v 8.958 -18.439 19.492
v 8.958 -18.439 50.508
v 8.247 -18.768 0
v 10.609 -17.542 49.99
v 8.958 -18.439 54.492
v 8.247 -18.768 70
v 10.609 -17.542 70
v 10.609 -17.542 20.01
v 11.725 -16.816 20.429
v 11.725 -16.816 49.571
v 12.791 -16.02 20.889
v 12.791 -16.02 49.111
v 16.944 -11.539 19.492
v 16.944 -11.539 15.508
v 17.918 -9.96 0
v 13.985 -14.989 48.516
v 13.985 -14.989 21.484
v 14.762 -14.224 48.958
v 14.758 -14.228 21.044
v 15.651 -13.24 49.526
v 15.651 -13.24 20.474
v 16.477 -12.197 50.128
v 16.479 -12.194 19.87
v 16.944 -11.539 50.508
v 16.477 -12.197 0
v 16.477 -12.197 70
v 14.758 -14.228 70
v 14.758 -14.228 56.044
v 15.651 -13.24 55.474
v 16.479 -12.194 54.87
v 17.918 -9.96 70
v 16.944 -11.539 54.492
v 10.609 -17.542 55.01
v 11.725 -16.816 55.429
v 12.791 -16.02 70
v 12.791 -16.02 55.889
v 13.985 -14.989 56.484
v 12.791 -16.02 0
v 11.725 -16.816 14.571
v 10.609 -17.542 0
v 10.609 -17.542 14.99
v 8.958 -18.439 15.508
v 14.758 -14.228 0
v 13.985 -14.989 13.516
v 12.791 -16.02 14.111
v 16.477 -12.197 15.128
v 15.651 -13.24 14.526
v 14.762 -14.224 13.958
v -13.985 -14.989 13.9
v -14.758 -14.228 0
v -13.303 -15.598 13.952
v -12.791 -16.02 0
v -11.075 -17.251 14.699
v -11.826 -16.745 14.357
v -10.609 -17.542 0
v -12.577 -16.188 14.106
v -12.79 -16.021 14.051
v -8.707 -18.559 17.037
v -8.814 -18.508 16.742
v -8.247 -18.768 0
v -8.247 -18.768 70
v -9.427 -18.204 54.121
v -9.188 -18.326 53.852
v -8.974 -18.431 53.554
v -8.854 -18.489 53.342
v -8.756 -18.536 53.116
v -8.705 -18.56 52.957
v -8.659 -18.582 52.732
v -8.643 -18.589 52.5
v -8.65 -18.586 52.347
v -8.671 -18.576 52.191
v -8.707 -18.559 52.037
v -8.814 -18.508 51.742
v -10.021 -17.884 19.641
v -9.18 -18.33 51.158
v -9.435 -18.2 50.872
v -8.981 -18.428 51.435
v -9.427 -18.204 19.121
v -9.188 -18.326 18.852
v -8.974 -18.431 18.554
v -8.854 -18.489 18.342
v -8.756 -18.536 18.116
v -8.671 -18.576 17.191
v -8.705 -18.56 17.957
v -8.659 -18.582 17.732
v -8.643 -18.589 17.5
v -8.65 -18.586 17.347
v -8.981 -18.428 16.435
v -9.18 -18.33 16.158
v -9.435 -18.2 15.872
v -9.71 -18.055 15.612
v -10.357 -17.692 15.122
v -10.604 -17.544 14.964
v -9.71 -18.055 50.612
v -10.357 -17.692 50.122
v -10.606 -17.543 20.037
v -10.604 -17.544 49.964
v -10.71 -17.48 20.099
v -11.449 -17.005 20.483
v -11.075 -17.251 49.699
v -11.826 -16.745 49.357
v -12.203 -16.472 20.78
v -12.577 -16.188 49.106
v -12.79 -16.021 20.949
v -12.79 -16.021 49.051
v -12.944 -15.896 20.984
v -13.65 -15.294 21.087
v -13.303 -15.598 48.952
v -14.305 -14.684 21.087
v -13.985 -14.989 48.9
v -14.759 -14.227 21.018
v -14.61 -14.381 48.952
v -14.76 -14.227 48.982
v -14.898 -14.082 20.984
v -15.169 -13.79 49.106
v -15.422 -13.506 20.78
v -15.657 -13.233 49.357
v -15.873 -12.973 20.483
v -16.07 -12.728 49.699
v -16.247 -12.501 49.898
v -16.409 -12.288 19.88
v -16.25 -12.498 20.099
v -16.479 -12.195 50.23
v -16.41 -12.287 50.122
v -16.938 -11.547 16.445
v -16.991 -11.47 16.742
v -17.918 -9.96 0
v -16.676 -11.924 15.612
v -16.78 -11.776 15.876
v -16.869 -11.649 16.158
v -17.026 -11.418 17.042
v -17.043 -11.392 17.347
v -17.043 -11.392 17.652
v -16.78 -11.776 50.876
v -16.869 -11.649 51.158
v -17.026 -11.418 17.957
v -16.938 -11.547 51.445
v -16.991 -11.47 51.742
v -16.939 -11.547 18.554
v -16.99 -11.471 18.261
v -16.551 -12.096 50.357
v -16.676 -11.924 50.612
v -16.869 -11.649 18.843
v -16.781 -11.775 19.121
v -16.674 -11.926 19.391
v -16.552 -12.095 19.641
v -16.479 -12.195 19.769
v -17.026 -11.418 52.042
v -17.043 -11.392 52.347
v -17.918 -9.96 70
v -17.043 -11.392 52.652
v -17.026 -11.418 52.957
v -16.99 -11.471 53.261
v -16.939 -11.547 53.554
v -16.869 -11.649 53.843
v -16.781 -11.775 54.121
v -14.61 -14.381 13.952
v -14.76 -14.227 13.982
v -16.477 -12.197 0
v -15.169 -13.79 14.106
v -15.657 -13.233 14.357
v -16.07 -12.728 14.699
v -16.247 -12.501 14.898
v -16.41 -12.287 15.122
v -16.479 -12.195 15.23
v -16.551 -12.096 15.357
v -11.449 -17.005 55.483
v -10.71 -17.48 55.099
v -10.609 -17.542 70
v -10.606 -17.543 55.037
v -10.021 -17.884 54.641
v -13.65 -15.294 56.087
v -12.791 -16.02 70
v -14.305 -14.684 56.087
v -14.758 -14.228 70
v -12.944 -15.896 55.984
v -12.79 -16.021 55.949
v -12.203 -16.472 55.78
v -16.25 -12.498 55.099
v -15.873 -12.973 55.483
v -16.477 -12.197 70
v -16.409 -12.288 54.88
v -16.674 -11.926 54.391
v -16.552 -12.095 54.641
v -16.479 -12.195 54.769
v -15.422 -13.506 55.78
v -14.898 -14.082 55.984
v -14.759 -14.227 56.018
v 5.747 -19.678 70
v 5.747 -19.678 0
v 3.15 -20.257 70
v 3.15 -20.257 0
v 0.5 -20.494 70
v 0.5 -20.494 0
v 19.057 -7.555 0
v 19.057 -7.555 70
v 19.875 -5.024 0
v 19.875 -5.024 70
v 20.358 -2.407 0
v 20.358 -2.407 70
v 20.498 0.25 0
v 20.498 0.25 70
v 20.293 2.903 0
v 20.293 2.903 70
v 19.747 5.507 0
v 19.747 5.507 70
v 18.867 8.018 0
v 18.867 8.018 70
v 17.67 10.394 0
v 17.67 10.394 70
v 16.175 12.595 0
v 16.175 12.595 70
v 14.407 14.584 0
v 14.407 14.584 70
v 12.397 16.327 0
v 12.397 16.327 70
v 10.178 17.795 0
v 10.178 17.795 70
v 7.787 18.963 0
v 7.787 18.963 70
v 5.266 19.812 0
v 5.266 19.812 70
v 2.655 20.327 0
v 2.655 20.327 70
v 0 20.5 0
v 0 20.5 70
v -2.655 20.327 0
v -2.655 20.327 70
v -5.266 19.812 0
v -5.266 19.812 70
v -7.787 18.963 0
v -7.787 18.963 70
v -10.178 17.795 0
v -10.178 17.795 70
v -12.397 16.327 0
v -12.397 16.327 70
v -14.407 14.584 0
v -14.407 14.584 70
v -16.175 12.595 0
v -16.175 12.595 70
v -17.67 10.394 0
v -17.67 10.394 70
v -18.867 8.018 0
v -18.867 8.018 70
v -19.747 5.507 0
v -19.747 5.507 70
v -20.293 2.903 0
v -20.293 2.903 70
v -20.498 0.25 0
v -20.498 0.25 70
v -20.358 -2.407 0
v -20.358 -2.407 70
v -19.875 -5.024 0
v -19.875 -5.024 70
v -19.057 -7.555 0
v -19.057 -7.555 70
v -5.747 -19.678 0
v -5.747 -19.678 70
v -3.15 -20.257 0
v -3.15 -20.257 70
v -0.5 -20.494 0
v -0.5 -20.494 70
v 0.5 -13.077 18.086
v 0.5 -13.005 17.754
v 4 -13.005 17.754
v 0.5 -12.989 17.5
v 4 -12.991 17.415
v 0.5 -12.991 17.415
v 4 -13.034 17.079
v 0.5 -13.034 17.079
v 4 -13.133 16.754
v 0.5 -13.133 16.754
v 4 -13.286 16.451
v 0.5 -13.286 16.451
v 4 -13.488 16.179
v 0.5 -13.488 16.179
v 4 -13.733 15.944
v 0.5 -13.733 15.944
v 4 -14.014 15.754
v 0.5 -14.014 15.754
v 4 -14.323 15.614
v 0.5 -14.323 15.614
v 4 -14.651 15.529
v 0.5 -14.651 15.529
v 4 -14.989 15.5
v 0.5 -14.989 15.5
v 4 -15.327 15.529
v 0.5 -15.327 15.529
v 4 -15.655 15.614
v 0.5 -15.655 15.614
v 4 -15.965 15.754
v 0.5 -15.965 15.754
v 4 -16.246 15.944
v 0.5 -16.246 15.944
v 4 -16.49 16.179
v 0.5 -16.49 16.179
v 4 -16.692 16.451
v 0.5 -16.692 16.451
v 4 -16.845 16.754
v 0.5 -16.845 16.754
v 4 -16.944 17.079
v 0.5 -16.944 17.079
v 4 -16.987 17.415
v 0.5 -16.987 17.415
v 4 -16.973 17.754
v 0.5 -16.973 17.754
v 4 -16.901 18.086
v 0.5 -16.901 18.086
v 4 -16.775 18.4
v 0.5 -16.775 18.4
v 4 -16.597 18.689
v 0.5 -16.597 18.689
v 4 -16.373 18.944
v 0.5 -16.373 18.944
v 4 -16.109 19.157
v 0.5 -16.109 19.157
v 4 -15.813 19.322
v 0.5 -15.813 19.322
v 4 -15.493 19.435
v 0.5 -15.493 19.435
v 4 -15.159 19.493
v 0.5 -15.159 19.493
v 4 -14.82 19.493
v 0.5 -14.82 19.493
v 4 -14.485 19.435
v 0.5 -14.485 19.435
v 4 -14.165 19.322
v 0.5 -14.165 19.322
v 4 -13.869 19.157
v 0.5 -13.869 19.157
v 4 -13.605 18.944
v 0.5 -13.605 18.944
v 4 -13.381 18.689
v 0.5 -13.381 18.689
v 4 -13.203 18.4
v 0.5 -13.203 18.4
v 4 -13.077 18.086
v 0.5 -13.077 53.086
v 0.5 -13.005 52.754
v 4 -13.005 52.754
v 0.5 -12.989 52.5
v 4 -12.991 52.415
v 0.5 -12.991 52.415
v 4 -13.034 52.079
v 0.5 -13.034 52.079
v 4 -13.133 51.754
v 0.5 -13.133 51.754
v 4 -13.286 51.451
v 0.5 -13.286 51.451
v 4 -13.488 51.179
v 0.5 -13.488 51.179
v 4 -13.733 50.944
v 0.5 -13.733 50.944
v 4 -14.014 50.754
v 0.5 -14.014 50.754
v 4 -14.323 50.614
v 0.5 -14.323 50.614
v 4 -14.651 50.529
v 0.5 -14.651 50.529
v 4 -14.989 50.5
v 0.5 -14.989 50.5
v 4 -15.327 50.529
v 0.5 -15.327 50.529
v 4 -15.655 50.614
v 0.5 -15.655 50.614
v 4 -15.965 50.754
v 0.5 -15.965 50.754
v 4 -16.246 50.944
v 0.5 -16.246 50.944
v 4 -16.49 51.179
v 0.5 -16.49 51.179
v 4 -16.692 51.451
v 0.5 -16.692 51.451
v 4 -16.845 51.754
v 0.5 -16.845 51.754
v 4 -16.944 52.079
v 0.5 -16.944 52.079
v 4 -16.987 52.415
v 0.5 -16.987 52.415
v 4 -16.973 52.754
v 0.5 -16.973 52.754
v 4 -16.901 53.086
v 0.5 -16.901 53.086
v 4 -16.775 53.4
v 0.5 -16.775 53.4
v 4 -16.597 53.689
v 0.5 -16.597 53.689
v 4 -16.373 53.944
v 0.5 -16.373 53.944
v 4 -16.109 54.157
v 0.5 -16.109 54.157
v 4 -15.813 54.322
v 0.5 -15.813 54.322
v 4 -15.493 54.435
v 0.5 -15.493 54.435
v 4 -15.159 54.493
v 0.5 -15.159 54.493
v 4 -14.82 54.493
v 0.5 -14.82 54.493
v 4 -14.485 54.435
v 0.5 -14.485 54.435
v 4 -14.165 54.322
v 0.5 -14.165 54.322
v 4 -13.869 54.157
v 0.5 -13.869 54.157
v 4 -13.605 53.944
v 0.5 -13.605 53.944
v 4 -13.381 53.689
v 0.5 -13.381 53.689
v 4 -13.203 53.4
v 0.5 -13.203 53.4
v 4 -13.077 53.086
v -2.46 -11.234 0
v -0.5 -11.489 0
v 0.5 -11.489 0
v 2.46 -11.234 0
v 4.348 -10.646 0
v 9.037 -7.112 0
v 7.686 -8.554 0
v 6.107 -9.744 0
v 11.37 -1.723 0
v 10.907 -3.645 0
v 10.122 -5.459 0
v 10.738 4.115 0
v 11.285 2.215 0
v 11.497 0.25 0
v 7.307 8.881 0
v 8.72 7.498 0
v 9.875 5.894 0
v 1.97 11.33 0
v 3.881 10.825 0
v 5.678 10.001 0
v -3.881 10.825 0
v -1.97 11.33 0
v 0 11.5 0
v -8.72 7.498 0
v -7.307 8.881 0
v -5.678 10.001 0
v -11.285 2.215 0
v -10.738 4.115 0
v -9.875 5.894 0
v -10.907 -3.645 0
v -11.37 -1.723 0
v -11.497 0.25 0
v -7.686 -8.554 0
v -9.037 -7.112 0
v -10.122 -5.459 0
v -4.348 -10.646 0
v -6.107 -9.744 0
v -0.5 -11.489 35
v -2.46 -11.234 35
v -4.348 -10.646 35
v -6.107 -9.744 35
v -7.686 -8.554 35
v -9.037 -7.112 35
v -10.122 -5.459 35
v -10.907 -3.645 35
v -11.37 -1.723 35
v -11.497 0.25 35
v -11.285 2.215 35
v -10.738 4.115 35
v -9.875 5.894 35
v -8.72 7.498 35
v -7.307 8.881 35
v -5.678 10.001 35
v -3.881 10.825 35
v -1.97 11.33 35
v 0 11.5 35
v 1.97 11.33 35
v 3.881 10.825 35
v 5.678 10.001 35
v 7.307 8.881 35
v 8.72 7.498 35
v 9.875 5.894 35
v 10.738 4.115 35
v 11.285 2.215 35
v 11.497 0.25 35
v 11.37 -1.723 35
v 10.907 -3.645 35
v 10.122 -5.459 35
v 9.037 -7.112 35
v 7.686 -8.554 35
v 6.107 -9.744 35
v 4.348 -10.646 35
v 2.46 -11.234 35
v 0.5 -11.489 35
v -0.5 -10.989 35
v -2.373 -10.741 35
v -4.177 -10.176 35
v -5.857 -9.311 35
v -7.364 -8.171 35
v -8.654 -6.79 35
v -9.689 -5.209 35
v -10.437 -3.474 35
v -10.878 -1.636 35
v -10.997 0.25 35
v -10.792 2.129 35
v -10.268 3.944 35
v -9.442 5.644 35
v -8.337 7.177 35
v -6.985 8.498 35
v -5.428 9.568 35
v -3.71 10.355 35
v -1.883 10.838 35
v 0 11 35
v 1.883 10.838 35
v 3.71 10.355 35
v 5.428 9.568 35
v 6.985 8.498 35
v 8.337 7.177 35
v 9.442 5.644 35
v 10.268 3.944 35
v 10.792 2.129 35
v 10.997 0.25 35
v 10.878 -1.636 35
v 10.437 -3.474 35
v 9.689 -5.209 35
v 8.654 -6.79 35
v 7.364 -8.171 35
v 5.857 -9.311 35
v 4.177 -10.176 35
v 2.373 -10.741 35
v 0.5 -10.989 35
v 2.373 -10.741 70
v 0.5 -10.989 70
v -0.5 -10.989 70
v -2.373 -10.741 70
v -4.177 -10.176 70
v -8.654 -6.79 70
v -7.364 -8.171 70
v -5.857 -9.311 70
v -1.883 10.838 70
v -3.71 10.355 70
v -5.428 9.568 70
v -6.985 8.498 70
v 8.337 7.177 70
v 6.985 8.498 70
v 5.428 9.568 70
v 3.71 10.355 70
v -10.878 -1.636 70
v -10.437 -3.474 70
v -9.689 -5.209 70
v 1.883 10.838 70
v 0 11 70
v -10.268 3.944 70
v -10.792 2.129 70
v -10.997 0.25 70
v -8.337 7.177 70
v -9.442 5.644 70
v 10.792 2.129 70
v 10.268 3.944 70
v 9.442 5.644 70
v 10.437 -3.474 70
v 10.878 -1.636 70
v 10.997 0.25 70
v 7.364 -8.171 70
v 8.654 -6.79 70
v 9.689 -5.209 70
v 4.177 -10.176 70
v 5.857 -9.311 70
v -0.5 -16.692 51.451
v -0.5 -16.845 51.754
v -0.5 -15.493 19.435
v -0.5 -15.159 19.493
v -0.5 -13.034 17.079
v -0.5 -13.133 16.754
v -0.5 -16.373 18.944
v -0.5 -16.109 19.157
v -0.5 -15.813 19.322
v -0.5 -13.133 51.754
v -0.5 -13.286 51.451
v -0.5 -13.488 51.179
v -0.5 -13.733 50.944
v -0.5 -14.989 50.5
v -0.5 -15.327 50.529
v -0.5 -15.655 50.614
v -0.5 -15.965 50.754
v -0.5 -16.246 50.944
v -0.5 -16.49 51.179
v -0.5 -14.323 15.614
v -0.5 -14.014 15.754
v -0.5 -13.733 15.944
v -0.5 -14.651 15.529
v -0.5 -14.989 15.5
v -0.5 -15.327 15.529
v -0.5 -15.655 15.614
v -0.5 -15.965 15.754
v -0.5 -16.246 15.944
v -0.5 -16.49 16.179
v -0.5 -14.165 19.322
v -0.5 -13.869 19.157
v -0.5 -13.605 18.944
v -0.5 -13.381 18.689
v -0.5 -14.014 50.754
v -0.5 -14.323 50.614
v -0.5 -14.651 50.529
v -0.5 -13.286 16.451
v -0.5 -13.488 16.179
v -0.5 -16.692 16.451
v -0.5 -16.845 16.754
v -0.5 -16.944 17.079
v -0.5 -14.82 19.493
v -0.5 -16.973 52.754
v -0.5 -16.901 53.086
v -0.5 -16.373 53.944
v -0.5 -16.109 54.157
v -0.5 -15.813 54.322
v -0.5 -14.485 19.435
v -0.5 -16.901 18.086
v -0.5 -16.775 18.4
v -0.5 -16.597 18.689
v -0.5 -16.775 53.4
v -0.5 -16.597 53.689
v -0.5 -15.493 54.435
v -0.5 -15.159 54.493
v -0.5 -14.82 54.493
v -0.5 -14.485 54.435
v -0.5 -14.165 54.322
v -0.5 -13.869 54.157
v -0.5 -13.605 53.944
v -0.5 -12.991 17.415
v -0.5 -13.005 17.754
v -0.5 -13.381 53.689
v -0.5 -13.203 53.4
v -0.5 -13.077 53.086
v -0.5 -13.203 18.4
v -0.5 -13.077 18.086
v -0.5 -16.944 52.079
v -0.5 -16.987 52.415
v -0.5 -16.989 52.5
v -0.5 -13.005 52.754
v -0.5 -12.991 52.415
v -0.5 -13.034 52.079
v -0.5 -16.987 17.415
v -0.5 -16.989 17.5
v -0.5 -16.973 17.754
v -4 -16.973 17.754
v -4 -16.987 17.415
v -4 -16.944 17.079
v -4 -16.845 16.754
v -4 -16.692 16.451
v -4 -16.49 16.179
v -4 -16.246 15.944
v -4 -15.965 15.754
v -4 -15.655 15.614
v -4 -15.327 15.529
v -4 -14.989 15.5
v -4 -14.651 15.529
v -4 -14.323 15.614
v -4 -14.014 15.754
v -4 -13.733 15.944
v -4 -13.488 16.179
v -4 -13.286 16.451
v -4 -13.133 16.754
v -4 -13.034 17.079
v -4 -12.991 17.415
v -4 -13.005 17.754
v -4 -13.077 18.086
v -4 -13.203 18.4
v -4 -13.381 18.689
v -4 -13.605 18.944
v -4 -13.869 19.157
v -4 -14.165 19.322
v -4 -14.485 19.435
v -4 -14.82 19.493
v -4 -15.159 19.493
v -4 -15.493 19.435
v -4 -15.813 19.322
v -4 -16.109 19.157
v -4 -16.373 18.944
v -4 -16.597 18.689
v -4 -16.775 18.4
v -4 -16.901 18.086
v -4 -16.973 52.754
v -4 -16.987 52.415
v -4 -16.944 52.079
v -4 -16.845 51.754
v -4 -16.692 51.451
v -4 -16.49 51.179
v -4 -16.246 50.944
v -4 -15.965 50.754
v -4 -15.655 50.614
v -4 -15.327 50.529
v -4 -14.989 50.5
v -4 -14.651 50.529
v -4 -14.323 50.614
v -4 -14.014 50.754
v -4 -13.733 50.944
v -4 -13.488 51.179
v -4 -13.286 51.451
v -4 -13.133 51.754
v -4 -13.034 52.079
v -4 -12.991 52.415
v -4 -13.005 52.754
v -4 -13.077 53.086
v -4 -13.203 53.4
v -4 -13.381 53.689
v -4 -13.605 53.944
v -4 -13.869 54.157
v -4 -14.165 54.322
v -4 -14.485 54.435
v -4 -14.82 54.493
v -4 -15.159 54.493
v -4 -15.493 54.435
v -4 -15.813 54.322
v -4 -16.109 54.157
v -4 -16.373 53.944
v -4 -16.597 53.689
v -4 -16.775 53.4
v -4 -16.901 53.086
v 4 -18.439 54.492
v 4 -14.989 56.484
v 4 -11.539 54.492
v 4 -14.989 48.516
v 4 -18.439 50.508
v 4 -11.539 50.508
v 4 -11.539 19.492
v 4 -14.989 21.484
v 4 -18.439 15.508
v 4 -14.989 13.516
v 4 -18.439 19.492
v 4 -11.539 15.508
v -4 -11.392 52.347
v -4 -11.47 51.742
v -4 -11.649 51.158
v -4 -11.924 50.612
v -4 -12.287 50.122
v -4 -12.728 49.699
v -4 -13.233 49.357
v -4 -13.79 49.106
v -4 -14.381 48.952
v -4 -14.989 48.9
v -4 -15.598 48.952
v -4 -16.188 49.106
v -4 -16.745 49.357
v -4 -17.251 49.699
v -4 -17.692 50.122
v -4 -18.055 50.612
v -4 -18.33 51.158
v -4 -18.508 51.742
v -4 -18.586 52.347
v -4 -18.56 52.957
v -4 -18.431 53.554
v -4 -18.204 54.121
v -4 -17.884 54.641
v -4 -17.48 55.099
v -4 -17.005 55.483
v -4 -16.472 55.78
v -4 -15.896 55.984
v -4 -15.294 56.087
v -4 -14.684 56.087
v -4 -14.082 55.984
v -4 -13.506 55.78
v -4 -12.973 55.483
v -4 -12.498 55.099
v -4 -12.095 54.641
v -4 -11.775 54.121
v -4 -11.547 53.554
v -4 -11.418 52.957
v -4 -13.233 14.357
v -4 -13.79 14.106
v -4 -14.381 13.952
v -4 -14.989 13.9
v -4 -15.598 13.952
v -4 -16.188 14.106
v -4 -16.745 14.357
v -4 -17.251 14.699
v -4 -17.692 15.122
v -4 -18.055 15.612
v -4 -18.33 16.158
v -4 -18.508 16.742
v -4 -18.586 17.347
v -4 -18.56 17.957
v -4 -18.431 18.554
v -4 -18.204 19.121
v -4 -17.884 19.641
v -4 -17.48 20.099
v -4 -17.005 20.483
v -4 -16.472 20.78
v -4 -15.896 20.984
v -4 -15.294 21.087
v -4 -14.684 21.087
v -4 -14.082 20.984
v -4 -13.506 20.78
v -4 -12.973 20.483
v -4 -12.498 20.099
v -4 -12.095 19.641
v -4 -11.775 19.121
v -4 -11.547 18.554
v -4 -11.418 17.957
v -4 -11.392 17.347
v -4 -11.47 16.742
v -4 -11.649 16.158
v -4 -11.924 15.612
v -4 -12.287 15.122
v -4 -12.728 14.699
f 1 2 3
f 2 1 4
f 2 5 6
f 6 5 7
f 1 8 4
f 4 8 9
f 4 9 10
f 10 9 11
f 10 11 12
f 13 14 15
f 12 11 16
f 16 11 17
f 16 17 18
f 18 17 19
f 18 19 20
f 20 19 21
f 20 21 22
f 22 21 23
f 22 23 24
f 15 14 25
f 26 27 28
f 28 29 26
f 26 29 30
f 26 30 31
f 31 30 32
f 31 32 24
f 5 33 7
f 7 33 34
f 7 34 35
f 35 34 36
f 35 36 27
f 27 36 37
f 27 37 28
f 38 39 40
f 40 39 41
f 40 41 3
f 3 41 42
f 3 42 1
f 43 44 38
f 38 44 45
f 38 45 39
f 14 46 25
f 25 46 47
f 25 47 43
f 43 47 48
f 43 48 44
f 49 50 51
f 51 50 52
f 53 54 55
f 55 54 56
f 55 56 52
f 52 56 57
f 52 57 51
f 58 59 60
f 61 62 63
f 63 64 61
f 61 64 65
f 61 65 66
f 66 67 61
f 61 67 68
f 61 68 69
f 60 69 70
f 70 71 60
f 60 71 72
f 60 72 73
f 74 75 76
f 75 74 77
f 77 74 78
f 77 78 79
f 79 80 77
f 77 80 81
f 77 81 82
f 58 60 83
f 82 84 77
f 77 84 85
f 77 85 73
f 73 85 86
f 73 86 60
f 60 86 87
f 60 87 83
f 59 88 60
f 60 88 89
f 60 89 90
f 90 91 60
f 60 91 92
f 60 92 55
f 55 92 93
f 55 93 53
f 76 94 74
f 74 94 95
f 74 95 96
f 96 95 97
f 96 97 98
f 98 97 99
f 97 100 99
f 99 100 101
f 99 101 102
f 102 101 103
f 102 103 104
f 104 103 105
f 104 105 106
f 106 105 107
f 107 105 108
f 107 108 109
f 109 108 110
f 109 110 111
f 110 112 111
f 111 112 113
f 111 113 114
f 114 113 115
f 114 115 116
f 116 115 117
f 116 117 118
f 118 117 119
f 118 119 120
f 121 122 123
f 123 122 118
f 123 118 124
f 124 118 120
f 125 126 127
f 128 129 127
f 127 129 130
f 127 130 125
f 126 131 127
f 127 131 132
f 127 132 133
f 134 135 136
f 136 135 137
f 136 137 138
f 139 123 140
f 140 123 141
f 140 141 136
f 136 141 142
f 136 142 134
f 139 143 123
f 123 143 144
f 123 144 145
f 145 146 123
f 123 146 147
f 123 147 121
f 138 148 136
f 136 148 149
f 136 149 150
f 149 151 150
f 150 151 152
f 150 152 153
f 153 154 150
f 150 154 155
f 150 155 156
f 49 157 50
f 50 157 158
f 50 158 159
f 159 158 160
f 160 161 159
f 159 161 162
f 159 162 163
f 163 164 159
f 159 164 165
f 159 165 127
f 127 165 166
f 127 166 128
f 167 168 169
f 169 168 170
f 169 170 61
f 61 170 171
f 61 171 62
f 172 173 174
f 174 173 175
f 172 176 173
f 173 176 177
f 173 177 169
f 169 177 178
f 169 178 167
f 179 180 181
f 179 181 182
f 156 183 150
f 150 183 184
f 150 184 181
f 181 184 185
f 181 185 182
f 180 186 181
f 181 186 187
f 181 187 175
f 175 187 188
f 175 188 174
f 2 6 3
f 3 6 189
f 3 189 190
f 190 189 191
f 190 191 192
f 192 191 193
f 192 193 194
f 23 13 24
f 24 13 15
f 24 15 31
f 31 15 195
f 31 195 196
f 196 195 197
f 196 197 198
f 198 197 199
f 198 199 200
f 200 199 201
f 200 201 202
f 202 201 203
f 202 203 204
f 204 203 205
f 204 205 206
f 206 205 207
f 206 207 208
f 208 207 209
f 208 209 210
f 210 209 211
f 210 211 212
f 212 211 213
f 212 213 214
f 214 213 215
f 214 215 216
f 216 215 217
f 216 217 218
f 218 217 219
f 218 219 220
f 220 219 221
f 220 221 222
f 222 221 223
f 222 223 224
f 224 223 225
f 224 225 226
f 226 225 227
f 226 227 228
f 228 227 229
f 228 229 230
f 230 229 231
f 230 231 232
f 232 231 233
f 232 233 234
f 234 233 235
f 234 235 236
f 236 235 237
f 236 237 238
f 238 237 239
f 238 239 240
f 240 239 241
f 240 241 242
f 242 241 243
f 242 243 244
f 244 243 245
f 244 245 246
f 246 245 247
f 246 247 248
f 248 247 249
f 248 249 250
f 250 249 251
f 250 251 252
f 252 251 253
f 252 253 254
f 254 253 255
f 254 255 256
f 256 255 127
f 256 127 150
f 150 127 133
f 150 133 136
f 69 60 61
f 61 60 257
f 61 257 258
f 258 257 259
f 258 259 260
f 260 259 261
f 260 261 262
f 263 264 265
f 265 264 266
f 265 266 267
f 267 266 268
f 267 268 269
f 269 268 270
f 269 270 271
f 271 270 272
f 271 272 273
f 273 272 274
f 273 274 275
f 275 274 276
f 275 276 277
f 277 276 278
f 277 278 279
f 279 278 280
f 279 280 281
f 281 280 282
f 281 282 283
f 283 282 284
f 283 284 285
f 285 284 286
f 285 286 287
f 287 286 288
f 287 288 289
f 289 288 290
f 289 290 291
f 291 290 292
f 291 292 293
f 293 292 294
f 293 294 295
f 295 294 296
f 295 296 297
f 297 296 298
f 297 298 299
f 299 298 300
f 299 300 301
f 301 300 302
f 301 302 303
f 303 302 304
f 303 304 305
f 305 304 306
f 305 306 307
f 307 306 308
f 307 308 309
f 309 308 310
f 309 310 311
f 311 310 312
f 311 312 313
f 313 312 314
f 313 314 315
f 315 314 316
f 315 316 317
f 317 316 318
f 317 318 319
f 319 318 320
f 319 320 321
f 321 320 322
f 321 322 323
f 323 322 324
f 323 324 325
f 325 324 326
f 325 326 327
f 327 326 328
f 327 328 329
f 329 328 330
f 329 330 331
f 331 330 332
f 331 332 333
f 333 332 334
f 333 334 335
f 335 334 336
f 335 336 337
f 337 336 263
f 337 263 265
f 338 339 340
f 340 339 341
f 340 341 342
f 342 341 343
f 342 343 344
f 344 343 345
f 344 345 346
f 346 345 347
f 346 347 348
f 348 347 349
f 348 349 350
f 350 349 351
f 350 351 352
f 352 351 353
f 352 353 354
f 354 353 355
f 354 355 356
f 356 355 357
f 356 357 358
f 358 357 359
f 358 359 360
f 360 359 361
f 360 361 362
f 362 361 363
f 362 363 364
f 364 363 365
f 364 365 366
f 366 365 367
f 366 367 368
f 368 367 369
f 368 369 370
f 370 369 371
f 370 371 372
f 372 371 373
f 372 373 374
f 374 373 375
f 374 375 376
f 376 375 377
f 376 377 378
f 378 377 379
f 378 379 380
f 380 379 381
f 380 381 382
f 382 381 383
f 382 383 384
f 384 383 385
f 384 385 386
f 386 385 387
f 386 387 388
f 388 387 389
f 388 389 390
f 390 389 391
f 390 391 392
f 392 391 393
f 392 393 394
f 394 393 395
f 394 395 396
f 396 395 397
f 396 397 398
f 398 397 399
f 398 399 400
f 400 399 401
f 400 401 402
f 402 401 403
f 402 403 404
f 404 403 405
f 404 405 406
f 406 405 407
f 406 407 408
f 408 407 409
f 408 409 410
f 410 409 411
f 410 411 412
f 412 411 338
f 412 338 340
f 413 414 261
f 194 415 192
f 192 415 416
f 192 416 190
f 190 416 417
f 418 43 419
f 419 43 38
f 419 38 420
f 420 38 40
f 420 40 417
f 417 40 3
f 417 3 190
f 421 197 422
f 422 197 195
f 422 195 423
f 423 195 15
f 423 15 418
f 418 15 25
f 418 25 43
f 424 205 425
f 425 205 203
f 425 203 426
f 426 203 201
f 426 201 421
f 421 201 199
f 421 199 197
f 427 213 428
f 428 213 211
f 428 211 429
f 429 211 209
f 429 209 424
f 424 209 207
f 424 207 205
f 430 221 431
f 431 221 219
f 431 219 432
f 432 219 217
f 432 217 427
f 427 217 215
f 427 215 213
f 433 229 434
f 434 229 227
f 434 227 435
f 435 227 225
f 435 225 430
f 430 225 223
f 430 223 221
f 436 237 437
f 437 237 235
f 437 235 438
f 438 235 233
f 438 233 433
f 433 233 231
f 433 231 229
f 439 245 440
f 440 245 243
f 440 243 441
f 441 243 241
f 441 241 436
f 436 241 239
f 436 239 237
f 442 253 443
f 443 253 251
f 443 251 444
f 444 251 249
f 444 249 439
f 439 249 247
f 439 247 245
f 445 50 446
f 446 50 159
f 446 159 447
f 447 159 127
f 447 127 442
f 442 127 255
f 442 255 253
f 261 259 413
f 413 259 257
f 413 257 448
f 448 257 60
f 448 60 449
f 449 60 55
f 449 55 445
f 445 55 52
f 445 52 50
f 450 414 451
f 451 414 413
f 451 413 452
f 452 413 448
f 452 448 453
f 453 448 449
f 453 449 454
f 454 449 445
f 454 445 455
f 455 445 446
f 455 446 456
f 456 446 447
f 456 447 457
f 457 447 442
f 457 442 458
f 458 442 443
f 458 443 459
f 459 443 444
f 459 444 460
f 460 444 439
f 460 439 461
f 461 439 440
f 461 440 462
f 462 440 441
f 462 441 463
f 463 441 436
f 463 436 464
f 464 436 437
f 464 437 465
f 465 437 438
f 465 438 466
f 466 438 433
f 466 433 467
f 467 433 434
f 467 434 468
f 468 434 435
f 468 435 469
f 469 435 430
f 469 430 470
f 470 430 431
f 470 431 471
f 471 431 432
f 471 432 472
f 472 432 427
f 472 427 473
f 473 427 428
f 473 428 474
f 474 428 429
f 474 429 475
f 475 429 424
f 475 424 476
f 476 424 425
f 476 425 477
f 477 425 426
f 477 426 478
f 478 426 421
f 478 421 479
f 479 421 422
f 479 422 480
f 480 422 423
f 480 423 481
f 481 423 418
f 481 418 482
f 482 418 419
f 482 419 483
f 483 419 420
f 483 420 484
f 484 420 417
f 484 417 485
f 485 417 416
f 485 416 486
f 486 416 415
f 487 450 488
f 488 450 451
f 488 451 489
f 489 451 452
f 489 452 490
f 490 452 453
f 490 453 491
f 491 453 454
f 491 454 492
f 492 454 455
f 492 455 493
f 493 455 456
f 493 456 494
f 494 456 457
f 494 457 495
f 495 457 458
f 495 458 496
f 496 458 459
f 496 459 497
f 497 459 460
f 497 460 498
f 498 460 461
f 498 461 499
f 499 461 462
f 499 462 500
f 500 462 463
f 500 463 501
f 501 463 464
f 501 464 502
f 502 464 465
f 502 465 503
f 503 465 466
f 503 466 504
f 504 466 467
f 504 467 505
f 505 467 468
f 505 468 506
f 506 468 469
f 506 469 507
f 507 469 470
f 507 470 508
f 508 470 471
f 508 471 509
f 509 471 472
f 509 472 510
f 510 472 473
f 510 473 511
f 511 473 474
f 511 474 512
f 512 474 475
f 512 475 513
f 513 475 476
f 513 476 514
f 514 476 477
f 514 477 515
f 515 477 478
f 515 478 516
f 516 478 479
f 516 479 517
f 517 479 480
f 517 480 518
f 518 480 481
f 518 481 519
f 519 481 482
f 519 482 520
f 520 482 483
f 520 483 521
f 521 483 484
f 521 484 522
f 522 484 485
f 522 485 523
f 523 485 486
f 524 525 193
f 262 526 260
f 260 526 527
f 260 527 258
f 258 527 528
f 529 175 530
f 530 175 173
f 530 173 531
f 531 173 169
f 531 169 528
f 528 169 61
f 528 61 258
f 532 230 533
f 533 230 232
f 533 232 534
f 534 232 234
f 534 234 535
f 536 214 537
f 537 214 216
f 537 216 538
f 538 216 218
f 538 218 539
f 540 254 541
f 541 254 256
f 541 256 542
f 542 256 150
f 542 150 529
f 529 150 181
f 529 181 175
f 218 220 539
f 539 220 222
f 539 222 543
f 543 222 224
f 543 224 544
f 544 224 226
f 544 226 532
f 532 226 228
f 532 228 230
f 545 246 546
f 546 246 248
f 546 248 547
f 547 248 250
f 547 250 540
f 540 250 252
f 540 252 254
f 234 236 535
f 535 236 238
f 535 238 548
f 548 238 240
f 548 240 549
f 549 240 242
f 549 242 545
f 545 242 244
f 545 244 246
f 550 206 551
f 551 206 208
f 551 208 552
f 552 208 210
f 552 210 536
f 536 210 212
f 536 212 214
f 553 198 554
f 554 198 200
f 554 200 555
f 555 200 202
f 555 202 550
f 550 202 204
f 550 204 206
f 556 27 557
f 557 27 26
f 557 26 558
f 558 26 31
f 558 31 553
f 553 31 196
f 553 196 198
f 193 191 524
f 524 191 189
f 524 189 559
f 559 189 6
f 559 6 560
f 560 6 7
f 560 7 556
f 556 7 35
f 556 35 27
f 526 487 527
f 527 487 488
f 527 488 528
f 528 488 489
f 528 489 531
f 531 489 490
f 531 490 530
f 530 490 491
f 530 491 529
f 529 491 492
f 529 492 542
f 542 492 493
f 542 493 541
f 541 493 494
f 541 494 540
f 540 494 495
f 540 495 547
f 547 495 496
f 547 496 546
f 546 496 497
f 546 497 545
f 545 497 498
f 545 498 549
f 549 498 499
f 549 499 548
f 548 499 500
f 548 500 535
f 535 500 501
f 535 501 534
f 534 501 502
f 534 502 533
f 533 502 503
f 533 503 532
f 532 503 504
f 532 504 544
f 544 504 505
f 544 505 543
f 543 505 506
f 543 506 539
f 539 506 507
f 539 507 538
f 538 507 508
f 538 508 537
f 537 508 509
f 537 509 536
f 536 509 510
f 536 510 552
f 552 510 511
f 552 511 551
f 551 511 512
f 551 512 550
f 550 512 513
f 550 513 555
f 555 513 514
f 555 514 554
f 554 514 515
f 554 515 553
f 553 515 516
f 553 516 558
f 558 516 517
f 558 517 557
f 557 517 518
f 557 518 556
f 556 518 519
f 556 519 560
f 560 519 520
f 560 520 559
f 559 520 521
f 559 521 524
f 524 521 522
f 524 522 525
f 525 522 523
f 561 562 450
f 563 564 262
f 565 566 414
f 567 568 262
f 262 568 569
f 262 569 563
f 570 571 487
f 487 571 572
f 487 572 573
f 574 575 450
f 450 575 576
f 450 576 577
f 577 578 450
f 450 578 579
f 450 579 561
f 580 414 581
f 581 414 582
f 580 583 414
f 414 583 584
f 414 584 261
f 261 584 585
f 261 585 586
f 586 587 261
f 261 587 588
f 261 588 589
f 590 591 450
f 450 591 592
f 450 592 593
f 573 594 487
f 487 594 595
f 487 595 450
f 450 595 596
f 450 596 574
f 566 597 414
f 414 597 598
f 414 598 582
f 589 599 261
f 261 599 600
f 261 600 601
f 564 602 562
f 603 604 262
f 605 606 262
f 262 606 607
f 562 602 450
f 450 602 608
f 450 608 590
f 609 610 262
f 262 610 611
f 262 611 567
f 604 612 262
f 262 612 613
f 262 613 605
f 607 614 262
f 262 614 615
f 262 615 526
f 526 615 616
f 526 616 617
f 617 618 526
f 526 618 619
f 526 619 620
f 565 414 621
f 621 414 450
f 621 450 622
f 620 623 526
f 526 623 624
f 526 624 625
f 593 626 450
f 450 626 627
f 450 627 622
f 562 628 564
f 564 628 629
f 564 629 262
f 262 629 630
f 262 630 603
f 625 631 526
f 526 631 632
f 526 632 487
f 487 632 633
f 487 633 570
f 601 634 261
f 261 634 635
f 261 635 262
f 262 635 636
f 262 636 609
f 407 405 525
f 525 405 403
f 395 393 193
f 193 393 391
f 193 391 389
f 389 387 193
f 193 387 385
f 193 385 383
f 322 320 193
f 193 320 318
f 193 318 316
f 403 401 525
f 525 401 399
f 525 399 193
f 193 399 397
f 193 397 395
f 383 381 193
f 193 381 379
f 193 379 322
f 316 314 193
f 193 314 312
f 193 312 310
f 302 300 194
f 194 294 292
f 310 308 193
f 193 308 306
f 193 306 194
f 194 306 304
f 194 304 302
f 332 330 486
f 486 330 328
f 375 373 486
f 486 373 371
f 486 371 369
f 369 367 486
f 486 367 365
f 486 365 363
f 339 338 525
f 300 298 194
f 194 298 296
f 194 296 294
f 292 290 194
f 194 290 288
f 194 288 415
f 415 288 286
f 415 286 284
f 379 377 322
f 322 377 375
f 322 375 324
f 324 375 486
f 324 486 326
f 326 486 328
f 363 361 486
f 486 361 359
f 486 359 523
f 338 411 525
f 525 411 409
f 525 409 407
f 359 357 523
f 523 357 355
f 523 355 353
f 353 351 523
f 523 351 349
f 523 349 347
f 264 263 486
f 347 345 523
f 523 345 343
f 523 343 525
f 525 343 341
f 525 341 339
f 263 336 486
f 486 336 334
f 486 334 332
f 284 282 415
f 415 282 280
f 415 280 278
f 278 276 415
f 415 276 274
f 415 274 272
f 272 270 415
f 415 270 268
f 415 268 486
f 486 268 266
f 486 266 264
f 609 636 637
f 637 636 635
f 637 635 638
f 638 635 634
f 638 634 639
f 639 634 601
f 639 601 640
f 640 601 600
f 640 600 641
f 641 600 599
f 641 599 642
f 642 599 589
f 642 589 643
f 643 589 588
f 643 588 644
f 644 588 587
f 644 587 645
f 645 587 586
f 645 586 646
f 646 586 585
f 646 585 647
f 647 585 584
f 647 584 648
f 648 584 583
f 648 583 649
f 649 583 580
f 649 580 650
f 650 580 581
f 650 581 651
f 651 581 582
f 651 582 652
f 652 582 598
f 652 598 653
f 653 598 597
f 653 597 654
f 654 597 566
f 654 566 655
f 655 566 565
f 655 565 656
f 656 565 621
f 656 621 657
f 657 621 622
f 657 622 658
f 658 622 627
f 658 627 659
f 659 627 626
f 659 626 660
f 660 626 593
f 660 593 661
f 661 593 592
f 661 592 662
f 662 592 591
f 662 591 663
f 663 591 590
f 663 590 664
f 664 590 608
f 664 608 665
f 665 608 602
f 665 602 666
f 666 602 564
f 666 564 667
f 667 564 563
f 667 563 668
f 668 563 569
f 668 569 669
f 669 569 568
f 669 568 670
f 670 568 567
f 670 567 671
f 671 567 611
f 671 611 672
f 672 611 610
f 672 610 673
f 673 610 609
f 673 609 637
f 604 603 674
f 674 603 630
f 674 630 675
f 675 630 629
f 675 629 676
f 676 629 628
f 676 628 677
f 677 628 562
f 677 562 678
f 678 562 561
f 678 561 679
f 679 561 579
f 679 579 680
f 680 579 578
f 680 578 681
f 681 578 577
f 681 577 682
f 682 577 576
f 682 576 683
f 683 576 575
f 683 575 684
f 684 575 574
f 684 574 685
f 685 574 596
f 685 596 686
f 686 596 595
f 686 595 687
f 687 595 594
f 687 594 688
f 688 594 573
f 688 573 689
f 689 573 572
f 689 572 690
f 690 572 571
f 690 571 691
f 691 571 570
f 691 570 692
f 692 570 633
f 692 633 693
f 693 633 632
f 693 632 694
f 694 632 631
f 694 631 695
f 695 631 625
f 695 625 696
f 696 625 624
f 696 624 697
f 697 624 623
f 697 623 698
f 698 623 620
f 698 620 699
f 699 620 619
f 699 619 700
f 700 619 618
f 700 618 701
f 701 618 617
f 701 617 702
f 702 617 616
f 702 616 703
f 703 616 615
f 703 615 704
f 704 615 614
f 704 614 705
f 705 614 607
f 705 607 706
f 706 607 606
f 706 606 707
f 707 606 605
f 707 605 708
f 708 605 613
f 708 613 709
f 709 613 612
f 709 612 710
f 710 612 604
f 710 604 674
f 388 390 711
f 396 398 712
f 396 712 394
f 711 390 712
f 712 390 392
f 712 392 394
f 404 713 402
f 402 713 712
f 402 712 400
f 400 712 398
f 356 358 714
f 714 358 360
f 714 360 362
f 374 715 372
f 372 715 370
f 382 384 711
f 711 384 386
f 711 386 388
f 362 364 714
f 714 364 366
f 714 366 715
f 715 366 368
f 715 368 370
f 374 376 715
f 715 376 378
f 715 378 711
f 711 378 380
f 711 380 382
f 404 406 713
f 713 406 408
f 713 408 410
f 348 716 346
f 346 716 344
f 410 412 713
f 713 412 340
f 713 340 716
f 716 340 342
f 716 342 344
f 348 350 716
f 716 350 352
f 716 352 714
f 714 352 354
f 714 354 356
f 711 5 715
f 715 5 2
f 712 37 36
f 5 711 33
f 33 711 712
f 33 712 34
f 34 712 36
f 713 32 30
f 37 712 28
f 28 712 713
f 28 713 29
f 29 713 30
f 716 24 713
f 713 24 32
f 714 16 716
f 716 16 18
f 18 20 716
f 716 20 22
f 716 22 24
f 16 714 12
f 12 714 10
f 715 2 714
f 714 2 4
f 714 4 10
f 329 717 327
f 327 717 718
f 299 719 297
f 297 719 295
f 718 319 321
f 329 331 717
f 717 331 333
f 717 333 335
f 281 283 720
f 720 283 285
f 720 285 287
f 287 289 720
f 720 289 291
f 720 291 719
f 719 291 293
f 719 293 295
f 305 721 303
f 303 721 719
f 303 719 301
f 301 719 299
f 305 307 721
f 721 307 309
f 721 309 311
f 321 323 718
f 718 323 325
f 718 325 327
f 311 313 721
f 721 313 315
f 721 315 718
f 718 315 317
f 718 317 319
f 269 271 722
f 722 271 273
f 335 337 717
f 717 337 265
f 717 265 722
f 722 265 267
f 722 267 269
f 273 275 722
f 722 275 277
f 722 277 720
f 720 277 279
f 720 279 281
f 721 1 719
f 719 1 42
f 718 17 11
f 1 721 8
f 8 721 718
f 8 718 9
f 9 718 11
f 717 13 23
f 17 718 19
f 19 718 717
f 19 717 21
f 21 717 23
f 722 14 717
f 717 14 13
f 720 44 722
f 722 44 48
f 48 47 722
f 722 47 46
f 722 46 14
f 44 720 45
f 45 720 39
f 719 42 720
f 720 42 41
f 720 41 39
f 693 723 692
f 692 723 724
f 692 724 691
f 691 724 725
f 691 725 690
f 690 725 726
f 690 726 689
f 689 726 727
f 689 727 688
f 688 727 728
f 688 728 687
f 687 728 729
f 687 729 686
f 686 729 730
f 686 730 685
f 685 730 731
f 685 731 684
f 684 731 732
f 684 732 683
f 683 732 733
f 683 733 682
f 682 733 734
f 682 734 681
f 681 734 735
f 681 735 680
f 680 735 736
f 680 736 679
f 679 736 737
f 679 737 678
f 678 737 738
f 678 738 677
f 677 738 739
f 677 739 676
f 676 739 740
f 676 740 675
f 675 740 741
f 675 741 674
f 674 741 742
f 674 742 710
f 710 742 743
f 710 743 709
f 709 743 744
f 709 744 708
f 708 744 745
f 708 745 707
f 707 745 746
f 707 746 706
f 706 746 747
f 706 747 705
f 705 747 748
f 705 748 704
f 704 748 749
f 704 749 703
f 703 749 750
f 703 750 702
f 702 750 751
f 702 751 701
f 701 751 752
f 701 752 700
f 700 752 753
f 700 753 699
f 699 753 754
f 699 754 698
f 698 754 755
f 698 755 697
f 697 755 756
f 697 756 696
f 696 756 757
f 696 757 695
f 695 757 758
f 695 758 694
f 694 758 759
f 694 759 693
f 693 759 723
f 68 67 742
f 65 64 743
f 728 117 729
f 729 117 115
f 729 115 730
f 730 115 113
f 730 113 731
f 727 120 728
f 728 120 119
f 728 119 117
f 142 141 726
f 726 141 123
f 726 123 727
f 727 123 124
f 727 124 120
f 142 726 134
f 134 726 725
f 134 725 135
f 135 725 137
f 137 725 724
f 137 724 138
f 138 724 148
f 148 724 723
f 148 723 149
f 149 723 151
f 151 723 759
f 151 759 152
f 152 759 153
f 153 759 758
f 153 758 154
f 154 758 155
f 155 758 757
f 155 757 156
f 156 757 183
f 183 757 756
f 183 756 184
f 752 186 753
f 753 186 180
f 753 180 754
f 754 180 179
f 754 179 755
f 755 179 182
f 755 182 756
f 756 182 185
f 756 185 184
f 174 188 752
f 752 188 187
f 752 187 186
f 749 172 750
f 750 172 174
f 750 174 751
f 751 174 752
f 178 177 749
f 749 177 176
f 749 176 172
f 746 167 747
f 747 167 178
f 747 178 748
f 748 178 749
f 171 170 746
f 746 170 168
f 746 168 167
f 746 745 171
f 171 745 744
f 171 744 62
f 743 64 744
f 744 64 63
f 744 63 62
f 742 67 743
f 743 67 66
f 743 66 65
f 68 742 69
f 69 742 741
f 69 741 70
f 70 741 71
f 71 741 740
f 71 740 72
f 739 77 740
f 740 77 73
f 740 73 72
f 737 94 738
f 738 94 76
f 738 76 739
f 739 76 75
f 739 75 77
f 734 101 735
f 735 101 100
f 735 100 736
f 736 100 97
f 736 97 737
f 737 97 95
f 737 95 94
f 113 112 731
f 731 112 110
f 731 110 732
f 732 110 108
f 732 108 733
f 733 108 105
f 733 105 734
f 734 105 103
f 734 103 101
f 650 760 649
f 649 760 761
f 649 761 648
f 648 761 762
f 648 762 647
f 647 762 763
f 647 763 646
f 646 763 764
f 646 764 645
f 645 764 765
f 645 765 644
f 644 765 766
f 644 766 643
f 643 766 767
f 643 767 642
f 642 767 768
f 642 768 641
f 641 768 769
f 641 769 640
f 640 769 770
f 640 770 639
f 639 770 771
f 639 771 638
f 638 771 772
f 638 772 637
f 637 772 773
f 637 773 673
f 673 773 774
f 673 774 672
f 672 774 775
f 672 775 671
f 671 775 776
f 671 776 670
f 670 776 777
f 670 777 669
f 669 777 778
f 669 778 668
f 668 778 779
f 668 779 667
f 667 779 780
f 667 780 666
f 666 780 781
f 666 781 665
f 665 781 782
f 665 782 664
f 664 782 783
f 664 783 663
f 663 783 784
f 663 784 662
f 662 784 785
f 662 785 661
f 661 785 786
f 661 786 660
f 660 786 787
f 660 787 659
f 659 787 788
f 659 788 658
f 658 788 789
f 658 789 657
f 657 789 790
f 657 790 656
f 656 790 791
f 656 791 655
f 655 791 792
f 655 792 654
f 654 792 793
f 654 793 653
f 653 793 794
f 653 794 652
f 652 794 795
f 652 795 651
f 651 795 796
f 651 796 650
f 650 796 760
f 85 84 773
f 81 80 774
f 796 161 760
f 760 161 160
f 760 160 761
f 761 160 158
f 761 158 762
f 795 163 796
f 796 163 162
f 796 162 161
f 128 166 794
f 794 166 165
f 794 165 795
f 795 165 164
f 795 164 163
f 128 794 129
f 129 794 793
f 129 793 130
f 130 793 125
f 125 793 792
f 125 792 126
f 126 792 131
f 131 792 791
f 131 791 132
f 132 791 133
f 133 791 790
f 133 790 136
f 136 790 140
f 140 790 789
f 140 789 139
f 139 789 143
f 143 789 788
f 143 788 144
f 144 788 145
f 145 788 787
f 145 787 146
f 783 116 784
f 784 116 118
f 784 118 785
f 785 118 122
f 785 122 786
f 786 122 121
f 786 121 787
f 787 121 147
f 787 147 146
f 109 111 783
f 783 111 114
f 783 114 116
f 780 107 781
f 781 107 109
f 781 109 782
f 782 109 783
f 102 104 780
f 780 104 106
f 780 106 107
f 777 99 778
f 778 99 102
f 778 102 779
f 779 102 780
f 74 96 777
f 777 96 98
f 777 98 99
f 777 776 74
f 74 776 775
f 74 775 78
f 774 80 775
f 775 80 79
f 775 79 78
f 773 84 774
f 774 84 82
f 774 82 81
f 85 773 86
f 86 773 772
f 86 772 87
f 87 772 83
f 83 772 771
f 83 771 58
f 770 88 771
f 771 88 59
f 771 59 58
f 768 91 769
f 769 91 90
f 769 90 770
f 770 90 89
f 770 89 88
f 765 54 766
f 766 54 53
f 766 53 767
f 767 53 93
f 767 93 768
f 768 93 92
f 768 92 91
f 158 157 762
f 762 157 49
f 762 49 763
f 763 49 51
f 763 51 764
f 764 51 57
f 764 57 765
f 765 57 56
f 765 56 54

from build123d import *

# Parameters (mm, degrees)
SKETCH1_R                           = 20.5
SKETCH1_R_2                         = 11.5
BOSS_EXTRUDE1_DEPTH                 = 35
SKETCH2_R                           = 20.5
SKETCH2_R_2                         = 11
BOSS_EXTRUDE2_DEPTH                 = 35
CUT_EXTRUDE1_REACH                  = 77.766
SKETCH3_W                           = 1
SKETCH3_H                           = 20.5
CUT_EXTRUDE2_REACH                  = 77.766
CUT_EXTRUDE2_END_RADIUS             = 20.5
SKETCH4_R                           = 2
CUT_EXTRUDE2_DIRECTION_2_REACH      = 77.766
CUT_EXTRUDE2_DIRECTION_2_END_RADIUS = 20.5
CUT_EXTRUDE3_REACH                  = 78.945
CUT_EXTRUDE3_END_RADIUS             = 20.5
CUT_EXTRUDE4_REACH                  = 78.945
CUT_EXTRUDE4_END_RADIUS             = 20.5
SKETCH7_R                           = 3.6


with BuildPart() as part:
    # Sketch1 → Boss-Extrude1 (new body)
    with BuildSketch(Plane.XY):
        Circle(SKETCH1_R)
        Circle(SKETCH1_R_2, mode=Mode.SUBTRACT)
    extrude(amount=BOSS_EXTRUDE1_DEPTH)

    # Sketch2 → Boss-Extrude2 (add)
    with BuildSketch(Plane.XY.offset(35)):
        Circle(SKETCH2_R)
        Circle(SKETCH2_R_2, mode=Mode.SUBTRACT)
    extrude(amount=BOSS_EXTRUDE2_DEPTH)

    # Cut-Extrude1: up to this face of the body (flat: up to its plane)
    cut_extrude1_end = Plane(part.part.faces().sort_by_distance((-19.920172439, 0, 70))[0])
    # Sketch3 → Cut-Extrude1 (cut, up to the picked face)
    with BuildSketch(Plane(origin=(0, 0, 0), x_dir=(-1, 0, 0), z_dir=(0, 0, -1)), mode=Mode.PRIVATE) as cut_extrude1_sk1:
        with Locations((0, -10.25)):
            Rectangle(SKETCH3_W, SKETCH3_H)
    cut_extrude1_tool1 = split(extrude(cut_extrude1_sk1.sketch, amount=-CUT_EXTRUDE1_REACH, mode=Mode.PRIVATE), bisect_by=cut_extrude1_end, keep=Keep.BOTH, mode=Mode.PRIVATE)
    add(cut_extrude1_tool1.solids().sort_by(Axis((0, -10.25, 0), (0, 0, 1)))[0], mode=Mode.SUBTRACT)

    # Cut-Extrude2: up to this cylinder (the profile starts inside it)
    cut_extrude2_end = Plane(origin=(0, 0, 35), z_dir=(0, 0, -1)) * Cylinder(CUT_EXTRUDE2_END_RADIUS, 232.532, mode=Mode.PRIVATE)
    # Sketch4 → Cut-Extrude2 (cut, up to the surface)
    with BuildSketch(Plane(origin=(0, 0, 0), x_dir=(0, 0, -1), z_dir=(1, 0, 0)), mode=Mode.PRIVATE) as cut_extrude2_sk1:
        with Locations(Location((-52.5, -14.989125293, 0), (0, 0, 90))):
            Circle(SKETCH4_R)
    cut_extrude2_tool1 = extrude(cut_extrude2_sk1.sketch, amount=-CUT_EXTRUDE2_REACH, mode=Mode.PRIVATE) & cut_extrude2_end
    add(cut_extrude2_tool1.solids().sort_by_distance((0, -14.989125, 52.5))[0], mode=Mode.SUBTRACT)
    # Sketch4 → Cut-Extrude2 (cut, up to the surface)
    with BuildSketch(Plane(origin=(0, 0, 0), x_dir=(0, 0, -1), z_dir=(1, 0, 0)), mode=Mode.PRIVATE) as cut_extrude2_sk2:
        with Locations(Location((-17.5, -14.989125293, 0), (0, 0, 90))):
            Circle(SKETCH4_R)
    cut_extrude2_tool2 = extrude(cut_extrude2_sk2.sketch, amount=-CUT_EXTRUDE2_REACH, mode=Mode.PRIVATE) & cut_extrude2_end
    add(cut_extrude2_tool2.solids().sort_by_distance((0, -14.989125, 17.5))[0], mode=Mode.SUBTRACT)

    # Cut-Extrude2 direction 2: up to this cylinder (the profile starts inside it)
    cut_extrude2_direction_2_end = Plane(origin=(0, 0, 35), z_dir=(0, 0, -1)) * Cylinder(CUT_EXTRUDE2_DIRECTION_2_END_RADIUS, 232.532, mode=Mode.PRIVATE)
    # Sketch4 → Cut-Extrude2 direction 2 (cut, up to the surface)
    with BuildSketch(Plane(origin=(0, 0, 0), x_dir=(0, 0, -1), z_dir=(1, 0, 0)), mode=Mode.PRIVATE) as cut_extrude2_direction_2_sk1:
        with Locations(Location((-52.5, -14.989125293, 0), (0, 0, 90))):
            Circle(SKETCH4_R)
    cut_extrude2_direction_2_tool1 = extrude(cut_extrude2_direction_2_sk1.sketch, amount=CUT_EXTRUDE2_DIRECTION_2_REACH, mode=Mode.PRIVATE) & cut_extrude2_direction_2_end
    add(cut_extrude2_direction_2_tool1.solids().sort_by_distance((0, -14.989125, 52.5))[0], mode=Mode.SUBTRACT)
    # Sketch4 → Cut-Extrude2 direction 2 (cut, up to the surface)
    with BuildSketch(Plane(origin=(0, 0, 0), x_dir=(0, 0, -1), z_dir=(1, 0, 0)), mode=Mode.PRIVATE) as cut_extrude2_direction_2_sk2:
        with Locations(Location((-17.5, -14.989125293, 0), (0, 0, 90))):
            Circle(SKETCH4_R)
    cut_extrude2_direction_2_tool2 = extrude(cut_extrude2_direction_2_sk2.sketch, amount=CUT_EXTRUDE2_DIRECTION_2_REACH, mode=Mode.PRIVATE) & cut_extrude2_direction_2_end
    add(cut_extrude2_direction_2_tool2.solids().sort_by_distance((0, -14.989125, 17.5))[0], mode=Mode.SUBTRACT)

    # Cut-Extrude3: up to this cylinder (the profile starts inside it)
    cut_extrude3_end = Plane(origin=(0, 0, 35), z_dir=(0, 0, -1)) * Cylinder(CUT_EXTRUDE3_END_RADIUS, 234.89, mode=Mode.PRIVATE)
    # Sketch6 → Cut-Extrude3 (cut, up to the surface)
    with BuildSketch(Plane(origin=(4, 0, 0), x_dir=(0, 0, -1), z_dir=(1, 0, 0)), mode=Mode.PRIVATE) as cut_extrude3_sk1:
        Polygon((-48.516283143, -14.989125293), (-50.508141571, -11.539125293), (-54.491858429, -11.539125293), (-56.483716857, -14.989125293), (-54.491858429, -18.439125293), (-50.508141571, -18.439125293), align=None)
    cut_extrude3_tool1 = extrude(cut_extrude3_sk1.sketch, amount=CUT_EXTRUDE3_REACH, mode=Mode.PRIVATE) & cut_extrude3_end
    add(cut_extrude3_tool1.solids().sort_by_distance((4, -14.989125, 52.5))[0], mode=Mode.SUBTRACT)
    # Sketch6 → Cut-Extrude3 (cut, up to the surface)
    with BuildSketch(Plane(origin=(4, 0, 0), x_dir=(0, 0, -1), z_dir=(1, 0, 0)), mode=Mode.PRIVATE) as cut_extrude3_sk2:
        Polygon((-13.516283143, -14.989125293), (-15.508141571, -11.539125293), (-19.491858429, -11.539125293), (-21.483716857, -14.989125293), (-19.491858429, -18.439125293), (-15.508141571, -18.439125293), align=None)
    cut_extrude3_tool2 = extrude(cut_extrude3_sk2.sketch, amount=CUT_EXTRUDE3_REACH, mode=Mode.PRIVATE) & cut_extrude3_end
    add(cut_extrude3_tool2.solids().sort_by_distance((4, -14.989125, 17.5))[0], mode=Mode.SUBTRACT)

    # Cut-Extrude4: up to this cylinder (the profile starts inside it)
    cut_extrude4_end = Plane(origin=(0, 0, 35), z_dir=(0, 0, -1)) * Cylinder(CUT_EXTRUDE4_END_RADIUS, 234.89, mode=Mode.PRIVATE)
    # Sketch7 → Cut-Extrude4 (cut, up to the surface)
    with BuildSketch(Plane(origin=(-4, 0, 0), x_dir=(0, 0, -1), z_dir=(1, 0, 0)), mode=Mode.PRIVATE) as cut_extrude4_sk1:
        with Locations((-52.5, -14.989125293)):
            Circle(SKETCH7_R)
    cut_extrude4_tool1 = extrude(cut_extrude4_sk1.sketch, amount=-CUT_EXTRUDE4_REACH, mode=Mode.PRIVATE) & cut_extrude4_end
    add(cut_extrude4_tool1.solids().sort_by_distance((-4, -14.989125, 52.5))[0], mode=Mode.SUBTRACT)
    # Sketch7 → Cut-Extrude4 (cut, up to the surface)
    with BuildSketch(Plane(origin=(-4, 0, 0), x_dir=(0, 0, -1), z_dir=(1, 0, 0)), mode=Mode.PRIVATE) as cut_extrude4_sk2:
        with Locations((-17.5, -14.989125293)):
            Circle(SKETCH7_R)
    cut_extrude4_tool2 = extrude(cut_extrude4_sk2.sketch, amount=-CUT_EXTRUDE4_REACH, mode=Mode.PRIVATE) & cut_extrude4_end
    add(cut_extrude4_tool2.solids().sort_by_distance((-4, -14.989125, 17.5))[0], mode=Mode.SUBTRACT)


solid = part.part
